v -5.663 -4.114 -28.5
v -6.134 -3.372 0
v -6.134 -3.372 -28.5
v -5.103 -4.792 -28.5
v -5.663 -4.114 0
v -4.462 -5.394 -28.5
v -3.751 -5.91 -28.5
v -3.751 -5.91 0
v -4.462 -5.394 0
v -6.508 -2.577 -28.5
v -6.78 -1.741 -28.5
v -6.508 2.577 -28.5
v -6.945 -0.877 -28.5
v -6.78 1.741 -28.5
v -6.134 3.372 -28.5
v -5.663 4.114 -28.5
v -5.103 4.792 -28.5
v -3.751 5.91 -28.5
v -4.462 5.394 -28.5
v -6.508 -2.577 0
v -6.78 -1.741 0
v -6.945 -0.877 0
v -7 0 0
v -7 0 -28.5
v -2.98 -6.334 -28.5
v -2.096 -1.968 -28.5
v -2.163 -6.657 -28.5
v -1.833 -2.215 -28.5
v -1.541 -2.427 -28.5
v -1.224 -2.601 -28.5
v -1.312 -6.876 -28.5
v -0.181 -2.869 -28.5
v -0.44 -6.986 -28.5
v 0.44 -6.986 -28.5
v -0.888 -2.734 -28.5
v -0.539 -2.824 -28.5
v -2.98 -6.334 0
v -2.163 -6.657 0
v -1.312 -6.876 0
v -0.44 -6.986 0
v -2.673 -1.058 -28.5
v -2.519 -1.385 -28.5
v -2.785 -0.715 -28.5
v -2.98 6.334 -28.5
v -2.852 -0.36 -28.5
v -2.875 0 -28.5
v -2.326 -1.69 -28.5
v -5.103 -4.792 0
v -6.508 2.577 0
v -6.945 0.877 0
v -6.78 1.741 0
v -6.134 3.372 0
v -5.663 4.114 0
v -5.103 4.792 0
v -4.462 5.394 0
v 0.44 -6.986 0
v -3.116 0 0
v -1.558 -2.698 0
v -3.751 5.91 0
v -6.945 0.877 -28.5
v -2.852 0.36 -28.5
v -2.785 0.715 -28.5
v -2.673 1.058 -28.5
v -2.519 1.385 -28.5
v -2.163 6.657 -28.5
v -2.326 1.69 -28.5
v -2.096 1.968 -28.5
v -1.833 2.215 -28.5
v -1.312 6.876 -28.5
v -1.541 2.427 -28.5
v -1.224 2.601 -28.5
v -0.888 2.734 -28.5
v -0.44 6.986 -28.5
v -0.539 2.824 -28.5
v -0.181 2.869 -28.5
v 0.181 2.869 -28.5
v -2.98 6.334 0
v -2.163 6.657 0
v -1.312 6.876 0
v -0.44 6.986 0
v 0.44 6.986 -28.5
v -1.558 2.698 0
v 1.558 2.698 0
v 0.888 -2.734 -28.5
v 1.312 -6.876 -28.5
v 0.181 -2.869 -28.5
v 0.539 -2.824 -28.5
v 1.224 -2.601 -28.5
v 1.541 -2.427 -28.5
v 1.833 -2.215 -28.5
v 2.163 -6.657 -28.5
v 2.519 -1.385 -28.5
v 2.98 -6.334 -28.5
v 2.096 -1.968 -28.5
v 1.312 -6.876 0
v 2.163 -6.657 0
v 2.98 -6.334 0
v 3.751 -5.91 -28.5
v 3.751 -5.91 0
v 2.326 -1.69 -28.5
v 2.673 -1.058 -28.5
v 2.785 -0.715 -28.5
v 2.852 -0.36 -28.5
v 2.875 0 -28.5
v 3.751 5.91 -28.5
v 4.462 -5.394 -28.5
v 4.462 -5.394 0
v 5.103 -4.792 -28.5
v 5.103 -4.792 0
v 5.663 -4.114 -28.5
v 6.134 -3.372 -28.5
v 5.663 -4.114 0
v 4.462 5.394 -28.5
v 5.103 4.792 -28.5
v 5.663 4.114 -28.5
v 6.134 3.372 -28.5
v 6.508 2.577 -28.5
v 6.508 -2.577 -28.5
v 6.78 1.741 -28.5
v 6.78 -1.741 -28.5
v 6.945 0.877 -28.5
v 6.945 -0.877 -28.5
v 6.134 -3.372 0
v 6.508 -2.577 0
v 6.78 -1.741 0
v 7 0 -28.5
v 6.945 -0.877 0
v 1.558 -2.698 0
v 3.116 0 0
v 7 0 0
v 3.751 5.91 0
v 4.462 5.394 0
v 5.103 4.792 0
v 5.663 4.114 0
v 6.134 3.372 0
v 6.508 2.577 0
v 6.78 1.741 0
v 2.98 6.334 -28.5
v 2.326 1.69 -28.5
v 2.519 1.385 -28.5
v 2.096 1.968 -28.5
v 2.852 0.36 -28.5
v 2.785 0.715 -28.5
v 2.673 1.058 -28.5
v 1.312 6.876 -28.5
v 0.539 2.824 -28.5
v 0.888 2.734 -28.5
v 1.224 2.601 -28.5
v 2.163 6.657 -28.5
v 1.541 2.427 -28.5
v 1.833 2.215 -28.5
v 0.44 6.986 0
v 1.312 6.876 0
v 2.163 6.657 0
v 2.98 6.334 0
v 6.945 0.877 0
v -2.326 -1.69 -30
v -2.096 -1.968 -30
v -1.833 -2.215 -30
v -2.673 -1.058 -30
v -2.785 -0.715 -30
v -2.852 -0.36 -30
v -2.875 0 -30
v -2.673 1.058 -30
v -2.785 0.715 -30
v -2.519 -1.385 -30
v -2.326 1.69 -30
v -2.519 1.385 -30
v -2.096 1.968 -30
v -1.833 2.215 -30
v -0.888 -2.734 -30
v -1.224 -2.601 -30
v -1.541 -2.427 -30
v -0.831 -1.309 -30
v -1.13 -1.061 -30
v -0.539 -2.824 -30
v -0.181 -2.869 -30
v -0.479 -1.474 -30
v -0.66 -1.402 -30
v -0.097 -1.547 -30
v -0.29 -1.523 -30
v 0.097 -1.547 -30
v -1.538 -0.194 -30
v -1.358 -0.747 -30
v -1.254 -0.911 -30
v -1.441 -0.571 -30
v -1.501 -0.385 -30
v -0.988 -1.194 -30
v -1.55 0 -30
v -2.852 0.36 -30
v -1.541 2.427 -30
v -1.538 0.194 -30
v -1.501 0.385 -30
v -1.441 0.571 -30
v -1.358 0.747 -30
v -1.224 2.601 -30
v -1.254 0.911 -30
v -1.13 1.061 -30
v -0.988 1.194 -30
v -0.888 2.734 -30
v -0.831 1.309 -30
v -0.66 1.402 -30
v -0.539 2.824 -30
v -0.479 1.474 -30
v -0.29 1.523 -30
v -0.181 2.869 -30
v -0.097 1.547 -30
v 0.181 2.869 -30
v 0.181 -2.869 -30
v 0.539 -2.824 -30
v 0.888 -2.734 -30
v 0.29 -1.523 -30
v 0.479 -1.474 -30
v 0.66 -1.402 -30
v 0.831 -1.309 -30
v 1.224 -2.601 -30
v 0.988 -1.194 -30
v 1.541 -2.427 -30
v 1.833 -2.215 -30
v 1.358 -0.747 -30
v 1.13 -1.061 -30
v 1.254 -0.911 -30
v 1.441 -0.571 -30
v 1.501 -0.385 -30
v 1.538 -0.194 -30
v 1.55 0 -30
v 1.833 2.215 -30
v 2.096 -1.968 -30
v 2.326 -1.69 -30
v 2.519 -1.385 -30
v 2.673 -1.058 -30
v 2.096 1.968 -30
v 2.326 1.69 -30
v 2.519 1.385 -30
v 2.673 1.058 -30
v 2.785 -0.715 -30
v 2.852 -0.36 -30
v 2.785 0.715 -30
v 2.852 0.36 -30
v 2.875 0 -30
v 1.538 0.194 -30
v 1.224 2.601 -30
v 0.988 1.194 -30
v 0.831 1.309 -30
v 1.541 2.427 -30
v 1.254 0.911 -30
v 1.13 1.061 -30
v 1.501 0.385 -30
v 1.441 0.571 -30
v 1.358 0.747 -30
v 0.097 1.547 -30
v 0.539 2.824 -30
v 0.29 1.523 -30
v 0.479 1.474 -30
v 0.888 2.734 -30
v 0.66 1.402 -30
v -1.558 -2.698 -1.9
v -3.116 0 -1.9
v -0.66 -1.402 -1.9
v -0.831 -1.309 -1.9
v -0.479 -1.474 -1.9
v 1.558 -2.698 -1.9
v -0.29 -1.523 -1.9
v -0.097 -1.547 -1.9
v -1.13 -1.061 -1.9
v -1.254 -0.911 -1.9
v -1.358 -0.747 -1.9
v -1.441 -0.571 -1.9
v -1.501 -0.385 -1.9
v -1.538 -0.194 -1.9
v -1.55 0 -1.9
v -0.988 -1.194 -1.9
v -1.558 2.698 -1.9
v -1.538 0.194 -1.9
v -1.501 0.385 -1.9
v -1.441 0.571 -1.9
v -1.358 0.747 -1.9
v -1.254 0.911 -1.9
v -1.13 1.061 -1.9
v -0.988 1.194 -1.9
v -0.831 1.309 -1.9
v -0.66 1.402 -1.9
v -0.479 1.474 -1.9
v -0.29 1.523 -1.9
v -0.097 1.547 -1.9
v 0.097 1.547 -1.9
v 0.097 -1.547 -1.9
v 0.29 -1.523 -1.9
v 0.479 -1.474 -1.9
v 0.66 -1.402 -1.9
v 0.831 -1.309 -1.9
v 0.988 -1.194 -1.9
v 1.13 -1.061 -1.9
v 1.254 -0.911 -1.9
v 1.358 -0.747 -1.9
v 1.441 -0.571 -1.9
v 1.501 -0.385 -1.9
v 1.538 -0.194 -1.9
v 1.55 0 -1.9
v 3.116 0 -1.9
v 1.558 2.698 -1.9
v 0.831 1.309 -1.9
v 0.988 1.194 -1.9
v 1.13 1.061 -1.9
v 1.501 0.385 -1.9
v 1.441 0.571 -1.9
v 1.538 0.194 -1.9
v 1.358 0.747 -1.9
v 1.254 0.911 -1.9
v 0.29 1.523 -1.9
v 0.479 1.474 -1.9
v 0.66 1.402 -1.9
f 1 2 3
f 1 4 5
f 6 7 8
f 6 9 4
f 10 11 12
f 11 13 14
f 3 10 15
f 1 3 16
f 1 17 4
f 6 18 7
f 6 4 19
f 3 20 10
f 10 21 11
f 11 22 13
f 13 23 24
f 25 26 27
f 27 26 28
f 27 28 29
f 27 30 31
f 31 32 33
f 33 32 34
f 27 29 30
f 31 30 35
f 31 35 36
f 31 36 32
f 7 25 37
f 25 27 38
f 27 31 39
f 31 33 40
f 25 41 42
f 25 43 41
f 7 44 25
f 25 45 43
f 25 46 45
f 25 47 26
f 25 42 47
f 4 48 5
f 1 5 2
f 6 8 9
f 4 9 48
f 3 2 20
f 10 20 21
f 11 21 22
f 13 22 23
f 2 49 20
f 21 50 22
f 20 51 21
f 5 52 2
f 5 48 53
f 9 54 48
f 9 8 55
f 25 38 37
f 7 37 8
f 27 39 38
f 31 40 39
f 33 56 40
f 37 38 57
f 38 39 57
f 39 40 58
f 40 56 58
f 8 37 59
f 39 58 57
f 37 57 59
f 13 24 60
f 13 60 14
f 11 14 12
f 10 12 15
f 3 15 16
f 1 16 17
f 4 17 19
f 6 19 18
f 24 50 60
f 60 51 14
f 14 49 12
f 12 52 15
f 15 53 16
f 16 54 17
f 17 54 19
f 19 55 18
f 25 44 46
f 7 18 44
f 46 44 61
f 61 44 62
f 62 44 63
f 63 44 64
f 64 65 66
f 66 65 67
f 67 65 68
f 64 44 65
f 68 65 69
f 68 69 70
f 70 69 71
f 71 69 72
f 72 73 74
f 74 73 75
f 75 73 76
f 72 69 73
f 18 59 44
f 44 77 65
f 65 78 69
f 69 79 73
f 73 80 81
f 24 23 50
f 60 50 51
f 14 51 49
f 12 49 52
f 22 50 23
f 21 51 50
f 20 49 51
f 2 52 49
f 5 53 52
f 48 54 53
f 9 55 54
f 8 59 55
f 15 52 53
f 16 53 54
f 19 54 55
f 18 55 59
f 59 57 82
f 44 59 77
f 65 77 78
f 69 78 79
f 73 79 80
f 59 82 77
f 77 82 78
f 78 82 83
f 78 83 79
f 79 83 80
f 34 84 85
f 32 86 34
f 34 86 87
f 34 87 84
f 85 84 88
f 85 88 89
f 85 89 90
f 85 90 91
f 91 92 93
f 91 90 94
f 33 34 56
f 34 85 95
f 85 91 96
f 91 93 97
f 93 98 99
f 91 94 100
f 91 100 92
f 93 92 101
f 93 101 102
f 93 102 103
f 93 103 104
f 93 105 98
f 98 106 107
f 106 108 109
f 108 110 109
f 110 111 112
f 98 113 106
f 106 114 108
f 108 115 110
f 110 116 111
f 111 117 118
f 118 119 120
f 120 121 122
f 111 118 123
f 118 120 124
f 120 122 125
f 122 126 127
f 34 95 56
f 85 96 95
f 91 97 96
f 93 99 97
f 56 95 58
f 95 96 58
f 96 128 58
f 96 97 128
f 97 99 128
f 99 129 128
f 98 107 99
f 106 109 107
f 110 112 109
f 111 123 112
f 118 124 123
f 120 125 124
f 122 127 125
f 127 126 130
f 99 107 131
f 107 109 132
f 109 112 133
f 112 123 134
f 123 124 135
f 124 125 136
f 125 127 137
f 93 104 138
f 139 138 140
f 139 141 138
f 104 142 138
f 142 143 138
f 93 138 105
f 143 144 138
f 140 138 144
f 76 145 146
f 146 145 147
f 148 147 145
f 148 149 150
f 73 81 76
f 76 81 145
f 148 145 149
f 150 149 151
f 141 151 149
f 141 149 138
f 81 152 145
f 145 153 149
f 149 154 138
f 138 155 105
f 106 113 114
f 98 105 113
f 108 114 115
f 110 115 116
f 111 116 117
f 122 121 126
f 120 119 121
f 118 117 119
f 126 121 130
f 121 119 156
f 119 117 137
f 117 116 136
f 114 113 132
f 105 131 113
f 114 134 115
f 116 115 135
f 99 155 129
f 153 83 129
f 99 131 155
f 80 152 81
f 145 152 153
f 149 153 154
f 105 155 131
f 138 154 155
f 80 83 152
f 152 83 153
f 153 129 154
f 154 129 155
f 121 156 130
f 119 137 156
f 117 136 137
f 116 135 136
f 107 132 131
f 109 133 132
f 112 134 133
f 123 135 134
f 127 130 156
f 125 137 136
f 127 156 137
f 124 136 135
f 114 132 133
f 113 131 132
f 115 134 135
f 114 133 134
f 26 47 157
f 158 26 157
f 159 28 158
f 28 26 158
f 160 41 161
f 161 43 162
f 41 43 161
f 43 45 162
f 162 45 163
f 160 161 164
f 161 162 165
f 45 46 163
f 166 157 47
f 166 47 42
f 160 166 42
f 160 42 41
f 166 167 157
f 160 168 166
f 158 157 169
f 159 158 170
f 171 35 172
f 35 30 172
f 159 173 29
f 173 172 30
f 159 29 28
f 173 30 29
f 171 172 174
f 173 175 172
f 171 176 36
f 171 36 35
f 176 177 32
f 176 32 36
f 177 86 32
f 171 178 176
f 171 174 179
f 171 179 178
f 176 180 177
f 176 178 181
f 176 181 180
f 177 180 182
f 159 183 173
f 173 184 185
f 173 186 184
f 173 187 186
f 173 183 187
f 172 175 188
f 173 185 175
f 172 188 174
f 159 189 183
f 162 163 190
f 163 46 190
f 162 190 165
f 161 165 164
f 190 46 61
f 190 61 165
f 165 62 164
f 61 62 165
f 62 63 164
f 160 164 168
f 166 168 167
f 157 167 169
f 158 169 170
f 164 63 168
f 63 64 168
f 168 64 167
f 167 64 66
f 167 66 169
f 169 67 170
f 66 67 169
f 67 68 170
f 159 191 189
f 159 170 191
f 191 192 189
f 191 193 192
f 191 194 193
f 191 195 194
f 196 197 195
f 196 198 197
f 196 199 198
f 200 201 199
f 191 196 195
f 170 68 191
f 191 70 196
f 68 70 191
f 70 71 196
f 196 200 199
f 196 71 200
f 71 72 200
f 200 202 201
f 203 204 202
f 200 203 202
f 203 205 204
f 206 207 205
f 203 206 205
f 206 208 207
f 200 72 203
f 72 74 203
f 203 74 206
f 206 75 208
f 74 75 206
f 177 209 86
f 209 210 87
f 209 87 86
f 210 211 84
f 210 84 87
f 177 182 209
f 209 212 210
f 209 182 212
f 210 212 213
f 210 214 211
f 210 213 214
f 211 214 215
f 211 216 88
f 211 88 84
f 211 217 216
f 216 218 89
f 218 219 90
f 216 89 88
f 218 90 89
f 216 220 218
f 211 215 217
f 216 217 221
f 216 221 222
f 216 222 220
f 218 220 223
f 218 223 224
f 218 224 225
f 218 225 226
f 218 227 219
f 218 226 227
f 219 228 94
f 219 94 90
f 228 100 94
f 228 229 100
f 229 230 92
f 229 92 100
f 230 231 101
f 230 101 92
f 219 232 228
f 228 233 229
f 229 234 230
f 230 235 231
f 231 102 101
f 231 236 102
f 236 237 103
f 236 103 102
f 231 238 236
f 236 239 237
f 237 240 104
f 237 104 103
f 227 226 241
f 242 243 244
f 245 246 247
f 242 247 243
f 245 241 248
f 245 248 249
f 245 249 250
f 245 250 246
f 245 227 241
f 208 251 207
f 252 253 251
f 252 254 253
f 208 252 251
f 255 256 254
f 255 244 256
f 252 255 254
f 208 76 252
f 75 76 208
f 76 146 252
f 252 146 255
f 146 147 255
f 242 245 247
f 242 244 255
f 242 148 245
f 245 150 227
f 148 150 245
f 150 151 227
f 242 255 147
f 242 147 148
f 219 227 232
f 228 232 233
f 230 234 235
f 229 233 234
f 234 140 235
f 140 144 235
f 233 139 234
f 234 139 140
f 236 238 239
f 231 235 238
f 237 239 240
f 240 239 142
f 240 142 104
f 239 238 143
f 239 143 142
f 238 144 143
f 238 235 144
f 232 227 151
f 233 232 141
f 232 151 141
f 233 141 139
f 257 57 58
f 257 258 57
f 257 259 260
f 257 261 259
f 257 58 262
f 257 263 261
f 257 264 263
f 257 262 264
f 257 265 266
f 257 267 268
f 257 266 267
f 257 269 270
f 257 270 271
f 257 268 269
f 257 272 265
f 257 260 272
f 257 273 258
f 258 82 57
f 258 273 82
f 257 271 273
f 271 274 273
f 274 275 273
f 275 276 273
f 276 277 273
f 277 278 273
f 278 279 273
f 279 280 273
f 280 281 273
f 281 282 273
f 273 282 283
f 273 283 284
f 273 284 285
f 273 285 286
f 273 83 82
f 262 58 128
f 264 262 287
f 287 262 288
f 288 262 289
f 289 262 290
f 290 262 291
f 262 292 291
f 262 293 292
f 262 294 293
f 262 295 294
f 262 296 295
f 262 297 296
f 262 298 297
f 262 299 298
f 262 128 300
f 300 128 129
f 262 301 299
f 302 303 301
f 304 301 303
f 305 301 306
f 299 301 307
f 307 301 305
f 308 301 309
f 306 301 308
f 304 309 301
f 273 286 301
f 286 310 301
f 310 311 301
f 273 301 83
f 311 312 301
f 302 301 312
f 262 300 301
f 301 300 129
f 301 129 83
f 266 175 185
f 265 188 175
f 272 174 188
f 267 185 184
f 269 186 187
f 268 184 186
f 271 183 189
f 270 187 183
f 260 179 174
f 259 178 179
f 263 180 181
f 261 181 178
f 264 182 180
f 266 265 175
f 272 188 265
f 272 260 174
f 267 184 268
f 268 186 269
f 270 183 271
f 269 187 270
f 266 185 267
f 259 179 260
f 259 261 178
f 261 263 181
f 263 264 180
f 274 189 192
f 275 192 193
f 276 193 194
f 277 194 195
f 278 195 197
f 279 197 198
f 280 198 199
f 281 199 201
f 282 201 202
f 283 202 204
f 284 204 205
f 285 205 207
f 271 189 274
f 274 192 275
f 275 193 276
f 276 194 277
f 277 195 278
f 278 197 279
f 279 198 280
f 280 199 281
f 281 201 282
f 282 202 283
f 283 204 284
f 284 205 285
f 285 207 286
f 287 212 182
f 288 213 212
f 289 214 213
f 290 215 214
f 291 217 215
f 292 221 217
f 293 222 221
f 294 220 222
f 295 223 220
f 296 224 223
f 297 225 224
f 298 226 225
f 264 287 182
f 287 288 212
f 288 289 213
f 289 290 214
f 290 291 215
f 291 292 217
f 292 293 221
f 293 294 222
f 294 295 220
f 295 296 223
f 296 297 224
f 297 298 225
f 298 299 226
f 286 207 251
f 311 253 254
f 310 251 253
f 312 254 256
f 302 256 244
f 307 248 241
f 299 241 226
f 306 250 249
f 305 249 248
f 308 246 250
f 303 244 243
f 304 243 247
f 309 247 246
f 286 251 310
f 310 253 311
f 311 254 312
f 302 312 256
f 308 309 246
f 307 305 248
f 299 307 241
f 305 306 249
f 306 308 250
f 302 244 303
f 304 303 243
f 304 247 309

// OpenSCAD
$fn = 50;

difference() {
	union() {
		translate(v = [0, 0, -28.5]) {
			cylinder(h = 28.5, r = 7.0);
		}
		#translate(v = [0, 0, -30.0]) {
			cylinder(h = 30, r = 2.875);
		}
	}
	union() {
		translate(v = [0, 0, 0]) {
			rotate(a = [0, 0, 0]) {
				difference() {
					union() {
						translate(v = [0, 0, -1.9]) {
							linear_extrude(height = 1.9) {
								polygon(points = [[3.1158, 0.0], [1.5579000000000005, 2.698361953111554], [-1.5578999999999994, 2.6983619531115544], [-3.1158, 3.815754496783323e-16], [-1.5579000000000014, -2.6983619531115535], [1.557899999999998, -2.6983619531115552]]);
							}
						}
					}
					union();
				}
			}
		}
		#translate(v = [0, 0, -100.0]) {
			cylinder(h = 200, r = 1.55);
		}
	}
}
